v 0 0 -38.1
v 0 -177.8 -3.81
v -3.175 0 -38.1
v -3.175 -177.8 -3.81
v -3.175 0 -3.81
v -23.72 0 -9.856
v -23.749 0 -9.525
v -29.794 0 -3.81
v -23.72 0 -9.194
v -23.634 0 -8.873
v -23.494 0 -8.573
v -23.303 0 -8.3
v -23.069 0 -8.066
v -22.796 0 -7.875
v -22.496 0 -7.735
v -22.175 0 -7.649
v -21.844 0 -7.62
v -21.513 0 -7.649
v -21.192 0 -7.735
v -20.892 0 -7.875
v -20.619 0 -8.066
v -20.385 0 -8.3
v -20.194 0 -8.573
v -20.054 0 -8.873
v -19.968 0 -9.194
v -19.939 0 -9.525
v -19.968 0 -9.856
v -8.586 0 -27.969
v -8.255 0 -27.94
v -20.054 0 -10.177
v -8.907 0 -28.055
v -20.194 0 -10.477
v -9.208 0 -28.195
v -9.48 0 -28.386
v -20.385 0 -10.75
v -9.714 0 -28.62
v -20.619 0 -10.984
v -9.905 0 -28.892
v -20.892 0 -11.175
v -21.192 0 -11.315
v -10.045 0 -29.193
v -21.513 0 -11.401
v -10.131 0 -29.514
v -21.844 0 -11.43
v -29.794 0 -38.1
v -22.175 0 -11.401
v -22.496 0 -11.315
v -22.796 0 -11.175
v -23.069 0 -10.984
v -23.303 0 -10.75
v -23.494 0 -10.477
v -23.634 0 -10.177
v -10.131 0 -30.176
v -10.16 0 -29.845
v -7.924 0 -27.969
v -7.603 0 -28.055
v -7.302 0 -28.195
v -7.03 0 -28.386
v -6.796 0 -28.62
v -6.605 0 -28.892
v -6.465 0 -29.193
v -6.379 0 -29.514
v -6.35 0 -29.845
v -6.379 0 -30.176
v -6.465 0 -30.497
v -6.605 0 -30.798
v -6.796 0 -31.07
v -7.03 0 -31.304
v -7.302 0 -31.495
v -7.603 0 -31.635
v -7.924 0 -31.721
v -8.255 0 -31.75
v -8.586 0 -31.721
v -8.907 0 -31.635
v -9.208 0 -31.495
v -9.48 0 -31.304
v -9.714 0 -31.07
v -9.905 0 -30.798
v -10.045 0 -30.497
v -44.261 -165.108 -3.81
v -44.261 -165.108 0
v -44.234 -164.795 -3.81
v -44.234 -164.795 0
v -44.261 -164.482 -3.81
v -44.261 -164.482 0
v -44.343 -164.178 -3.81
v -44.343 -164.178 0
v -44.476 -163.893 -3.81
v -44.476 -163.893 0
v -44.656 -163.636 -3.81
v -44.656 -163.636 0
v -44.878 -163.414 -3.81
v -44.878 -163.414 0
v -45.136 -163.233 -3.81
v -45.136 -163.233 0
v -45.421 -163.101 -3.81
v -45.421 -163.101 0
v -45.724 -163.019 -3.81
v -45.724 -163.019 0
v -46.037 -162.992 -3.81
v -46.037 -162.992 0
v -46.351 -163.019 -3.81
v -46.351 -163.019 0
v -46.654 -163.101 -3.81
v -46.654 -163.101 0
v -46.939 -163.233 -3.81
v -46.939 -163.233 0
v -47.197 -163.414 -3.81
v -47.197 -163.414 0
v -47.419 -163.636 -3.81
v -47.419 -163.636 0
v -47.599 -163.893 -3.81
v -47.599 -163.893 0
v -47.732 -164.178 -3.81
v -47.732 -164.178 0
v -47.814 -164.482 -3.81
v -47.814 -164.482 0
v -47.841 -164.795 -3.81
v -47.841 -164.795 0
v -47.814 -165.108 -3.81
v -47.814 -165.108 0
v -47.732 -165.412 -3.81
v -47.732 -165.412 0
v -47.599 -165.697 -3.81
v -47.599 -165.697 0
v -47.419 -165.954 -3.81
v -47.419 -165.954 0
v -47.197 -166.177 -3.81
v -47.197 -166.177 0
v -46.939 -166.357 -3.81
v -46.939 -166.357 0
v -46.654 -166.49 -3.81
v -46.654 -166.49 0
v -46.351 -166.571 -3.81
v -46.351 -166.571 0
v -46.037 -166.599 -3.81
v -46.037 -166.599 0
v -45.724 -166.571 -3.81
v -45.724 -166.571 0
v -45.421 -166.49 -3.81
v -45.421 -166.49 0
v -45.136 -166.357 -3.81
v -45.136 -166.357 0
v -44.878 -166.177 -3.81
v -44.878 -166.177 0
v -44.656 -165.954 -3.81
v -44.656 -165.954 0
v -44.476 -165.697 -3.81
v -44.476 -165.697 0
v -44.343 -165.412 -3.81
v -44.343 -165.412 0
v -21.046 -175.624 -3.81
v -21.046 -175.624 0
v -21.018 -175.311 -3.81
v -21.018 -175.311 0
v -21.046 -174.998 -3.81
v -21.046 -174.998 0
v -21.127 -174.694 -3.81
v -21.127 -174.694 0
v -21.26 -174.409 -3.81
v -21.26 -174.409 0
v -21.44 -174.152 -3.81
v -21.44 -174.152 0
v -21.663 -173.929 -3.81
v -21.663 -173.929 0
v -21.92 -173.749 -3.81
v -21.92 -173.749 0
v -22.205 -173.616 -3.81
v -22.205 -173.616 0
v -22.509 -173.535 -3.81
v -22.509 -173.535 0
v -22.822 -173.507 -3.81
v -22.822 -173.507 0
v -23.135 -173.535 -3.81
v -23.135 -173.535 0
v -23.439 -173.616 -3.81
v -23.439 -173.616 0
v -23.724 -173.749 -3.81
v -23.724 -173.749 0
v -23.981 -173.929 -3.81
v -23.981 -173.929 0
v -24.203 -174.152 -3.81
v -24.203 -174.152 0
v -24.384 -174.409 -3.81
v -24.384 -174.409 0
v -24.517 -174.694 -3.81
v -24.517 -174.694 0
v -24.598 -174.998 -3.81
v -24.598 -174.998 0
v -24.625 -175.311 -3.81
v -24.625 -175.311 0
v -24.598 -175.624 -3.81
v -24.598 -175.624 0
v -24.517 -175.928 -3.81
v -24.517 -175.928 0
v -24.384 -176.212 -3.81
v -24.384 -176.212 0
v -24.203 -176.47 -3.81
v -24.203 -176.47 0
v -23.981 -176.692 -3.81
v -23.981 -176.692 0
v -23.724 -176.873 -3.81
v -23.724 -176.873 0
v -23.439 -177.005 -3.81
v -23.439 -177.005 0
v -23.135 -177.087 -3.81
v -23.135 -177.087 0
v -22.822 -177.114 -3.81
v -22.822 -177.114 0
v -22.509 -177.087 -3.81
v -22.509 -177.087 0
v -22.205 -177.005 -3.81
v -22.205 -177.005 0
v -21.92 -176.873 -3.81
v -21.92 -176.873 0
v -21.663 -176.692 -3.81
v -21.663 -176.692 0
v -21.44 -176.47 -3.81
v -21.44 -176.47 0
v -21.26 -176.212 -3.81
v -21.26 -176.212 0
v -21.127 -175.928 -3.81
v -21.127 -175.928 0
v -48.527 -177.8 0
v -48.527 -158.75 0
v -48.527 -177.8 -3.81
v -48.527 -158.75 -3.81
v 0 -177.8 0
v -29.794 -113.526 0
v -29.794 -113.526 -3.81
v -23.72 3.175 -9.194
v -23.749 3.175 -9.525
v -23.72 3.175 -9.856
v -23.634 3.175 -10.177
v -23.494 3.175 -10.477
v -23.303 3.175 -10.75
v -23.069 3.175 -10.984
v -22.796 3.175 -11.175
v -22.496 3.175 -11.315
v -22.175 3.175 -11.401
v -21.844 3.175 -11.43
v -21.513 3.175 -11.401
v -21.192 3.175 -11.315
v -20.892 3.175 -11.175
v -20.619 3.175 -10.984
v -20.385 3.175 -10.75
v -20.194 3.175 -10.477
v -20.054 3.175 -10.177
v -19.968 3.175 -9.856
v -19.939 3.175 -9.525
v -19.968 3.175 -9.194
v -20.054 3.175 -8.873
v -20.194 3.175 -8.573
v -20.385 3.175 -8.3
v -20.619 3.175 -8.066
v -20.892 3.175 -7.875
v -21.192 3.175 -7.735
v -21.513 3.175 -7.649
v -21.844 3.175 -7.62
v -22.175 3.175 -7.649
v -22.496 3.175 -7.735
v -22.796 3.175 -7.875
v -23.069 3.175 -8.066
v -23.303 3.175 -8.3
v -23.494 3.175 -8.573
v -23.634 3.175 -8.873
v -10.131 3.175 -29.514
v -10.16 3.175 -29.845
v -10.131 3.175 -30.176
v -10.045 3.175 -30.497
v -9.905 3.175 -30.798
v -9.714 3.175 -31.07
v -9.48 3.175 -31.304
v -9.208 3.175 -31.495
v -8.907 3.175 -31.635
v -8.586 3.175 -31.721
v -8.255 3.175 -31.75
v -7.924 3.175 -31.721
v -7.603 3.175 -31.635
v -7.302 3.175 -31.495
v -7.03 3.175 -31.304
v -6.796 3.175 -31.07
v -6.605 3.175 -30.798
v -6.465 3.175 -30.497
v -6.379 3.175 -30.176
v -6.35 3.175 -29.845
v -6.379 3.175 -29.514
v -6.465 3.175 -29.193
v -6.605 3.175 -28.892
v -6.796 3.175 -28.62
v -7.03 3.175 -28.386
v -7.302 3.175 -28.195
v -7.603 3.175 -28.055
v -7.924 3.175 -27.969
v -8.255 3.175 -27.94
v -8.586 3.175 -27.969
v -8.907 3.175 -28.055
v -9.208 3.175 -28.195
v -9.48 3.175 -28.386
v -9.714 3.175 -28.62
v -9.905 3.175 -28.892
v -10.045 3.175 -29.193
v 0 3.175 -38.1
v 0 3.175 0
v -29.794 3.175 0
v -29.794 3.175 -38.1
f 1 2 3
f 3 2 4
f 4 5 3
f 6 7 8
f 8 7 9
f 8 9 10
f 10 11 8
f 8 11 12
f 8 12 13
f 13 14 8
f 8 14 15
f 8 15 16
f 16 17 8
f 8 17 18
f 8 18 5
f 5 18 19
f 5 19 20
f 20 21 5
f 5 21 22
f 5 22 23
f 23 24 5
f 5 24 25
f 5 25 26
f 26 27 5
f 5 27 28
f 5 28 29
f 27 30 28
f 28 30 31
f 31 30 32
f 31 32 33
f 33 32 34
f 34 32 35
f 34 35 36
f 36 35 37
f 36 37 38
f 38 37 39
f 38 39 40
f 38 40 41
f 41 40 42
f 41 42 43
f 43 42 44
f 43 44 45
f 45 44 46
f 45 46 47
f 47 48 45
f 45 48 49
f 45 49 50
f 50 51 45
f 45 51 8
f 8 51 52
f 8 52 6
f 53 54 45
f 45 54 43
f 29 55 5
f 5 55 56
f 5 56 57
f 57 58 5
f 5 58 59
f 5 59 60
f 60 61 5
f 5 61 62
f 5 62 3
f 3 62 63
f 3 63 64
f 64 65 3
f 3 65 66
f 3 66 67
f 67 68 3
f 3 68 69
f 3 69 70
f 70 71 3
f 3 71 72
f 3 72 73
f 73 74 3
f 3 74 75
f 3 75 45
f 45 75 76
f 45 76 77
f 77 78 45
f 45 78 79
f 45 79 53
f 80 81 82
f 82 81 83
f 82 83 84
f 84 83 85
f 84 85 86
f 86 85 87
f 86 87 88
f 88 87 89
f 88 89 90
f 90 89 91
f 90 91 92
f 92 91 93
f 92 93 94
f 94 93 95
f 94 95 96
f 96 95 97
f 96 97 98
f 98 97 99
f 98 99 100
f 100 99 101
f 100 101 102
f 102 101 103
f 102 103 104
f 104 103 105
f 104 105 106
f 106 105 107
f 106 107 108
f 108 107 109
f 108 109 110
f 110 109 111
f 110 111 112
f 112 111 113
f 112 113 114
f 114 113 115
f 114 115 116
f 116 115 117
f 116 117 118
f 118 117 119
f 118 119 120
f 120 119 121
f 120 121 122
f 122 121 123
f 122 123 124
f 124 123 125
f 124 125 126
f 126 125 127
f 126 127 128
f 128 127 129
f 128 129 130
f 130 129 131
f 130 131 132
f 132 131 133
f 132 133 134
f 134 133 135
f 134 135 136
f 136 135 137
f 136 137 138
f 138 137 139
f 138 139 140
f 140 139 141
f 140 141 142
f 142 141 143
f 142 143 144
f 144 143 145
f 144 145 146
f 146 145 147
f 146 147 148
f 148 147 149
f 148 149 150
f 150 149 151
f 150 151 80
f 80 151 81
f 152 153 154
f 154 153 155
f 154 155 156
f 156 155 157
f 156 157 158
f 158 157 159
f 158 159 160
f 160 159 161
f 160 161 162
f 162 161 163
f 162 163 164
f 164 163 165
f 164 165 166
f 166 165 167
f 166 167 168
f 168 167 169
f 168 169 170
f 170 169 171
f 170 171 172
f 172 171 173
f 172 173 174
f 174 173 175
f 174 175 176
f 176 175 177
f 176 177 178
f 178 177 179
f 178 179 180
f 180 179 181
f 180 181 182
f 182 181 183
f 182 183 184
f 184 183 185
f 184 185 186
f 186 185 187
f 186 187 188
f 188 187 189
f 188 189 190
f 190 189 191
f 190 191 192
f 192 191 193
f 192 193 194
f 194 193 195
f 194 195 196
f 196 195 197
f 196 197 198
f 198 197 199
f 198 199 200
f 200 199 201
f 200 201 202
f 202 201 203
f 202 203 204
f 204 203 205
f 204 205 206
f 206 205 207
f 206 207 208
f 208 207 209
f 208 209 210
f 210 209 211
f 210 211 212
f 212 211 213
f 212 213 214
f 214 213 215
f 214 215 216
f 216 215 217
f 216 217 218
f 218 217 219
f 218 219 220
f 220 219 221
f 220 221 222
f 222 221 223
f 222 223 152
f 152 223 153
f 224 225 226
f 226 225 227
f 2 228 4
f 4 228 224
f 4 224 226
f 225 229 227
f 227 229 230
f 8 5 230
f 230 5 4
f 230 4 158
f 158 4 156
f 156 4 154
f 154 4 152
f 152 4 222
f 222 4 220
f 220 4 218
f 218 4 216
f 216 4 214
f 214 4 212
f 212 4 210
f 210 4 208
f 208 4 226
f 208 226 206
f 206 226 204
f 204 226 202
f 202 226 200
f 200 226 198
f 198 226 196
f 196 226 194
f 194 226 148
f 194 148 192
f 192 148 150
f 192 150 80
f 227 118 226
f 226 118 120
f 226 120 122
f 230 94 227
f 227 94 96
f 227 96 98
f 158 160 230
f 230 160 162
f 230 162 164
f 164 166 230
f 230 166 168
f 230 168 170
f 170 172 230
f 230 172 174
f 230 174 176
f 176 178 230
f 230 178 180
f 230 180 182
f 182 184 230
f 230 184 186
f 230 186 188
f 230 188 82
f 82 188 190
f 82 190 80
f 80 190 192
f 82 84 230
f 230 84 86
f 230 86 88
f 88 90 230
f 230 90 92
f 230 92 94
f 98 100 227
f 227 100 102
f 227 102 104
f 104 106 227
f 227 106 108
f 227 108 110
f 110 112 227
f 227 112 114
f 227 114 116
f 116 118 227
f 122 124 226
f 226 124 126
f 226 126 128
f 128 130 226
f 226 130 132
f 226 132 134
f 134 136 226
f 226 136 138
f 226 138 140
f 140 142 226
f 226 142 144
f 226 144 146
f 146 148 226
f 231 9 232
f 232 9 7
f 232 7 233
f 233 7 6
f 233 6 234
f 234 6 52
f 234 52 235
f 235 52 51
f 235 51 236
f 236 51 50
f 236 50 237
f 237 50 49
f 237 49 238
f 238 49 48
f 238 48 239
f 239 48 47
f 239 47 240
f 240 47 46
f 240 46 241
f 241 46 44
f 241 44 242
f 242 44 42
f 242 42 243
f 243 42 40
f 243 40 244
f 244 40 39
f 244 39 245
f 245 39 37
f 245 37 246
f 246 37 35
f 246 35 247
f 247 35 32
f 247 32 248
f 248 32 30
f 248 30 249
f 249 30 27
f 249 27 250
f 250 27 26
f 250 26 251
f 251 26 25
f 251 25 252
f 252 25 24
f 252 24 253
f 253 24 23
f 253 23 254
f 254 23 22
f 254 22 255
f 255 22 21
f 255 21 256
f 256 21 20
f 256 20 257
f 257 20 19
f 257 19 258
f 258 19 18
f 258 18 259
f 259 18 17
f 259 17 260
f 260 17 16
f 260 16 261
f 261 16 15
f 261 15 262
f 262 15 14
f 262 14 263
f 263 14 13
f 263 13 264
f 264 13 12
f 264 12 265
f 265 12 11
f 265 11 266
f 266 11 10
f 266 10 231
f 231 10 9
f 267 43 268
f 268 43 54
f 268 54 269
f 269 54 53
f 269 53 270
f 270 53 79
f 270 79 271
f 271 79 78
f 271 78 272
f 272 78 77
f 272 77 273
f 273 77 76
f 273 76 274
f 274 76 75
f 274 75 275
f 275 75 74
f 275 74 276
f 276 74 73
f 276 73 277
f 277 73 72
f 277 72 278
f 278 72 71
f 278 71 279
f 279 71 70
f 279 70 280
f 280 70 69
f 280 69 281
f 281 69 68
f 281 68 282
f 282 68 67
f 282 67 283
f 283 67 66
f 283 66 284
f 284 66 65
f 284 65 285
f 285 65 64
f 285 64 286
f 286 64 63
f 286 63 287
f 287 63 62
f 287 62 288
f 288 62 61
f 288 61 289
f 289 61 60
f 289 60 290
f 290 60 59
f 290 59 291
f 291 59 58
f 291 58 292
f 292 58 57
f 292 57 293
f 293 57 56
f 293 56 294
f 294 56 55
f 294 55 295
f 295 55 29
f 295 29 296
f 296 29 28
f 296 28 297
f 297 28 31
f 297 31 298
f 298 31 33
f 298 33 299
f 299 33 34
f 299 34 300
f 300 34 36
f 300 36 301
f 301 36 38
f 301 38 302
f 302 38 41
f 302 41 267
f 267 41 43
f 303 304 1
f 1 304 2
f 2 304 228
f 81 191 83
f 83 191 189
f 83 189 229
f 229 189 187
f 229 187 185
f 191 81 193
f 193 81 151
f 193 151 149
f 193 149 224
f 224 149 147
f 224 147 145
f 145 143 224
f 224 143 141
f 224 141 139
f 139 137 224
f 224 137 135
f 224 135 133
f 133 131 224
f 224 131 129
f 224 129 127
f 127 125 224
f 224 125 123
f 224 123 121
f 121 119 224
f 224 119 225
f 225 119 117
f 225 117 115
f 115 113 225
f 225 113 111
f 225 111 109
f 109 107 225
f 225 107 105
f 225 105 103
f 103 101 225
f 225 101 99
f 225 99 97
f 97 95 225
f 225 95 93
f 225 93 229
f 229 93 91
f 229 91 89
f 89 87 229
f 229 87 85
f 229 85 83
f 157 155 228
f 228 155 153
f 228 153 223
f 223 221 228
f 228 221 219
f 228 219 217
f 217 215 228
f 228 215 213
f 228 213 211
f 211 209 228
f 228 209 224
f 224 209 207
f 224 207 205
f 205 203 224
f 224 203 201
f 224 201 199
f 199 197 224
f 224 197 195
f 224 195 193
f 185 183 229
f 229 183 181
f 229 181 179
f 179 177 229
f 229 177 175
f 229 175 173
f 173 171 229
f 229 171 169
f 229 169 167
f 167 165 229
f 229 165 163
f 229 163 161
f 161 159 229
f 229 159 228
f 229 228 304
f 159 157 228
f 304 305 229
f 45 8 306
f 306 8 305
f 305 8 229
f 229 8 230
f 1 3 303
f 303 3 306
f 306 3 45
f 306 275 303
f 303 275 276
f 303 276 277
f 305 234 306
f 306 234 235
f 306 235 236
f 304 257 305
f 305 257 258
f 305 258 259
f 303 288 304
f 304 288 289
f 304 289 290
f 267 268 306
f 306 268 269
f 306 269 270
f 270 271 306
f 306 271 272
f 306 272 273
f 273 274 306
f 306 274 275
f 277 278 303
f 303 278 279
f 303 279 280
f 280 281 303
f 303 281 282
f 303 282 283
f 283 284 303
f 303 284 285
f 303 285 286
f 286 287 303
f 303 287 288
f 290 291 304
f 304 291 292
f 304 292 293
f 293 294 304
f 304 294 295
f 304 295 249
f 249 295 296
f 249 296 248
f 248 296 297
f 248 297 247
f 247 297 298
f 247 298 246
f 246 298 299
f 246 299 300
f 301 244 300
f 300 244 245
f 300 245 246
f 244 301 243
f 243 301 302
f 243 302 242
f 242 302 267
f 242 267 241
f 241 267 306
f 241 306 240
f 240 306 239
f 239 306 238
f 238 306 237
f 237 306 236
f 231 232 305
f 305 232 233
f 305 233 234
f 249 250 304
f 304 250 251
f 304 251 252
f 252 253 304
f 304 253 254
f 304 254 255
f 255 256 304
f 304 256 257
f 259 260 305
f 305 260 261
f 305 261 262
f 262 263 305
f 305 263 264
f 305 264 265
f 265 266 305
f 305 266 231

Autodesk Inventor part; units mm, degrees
ref_plane "YZ Plane" through (0, 0, 0) normal (1, 0, 0) x (0, 1, 0)
ref_plane "XZ Plane" through (0, 0, 0) normal (0, 1, 0) x (-1, 0, 0)
ref_plane "XY Plane" through (0, 0, 0) normal (0, 0, 1) x (1, 0, 0)
sketch "Sketch1" plane through (0, 0, 0) normal (0, 1, 0) x (-1, 0, 0)
  line L0 (0, 0) -> (29.7942, 0)
  line L1 (29.7942, 0) -> (29.7942, -38.1)
  line L2 (29.7942, -38.1) -> (0, -38.1)
  line L3 (0, -38.1) -> (0, 0)
  circle A0 centre (21.844, -9.525) radius 1.905
  circle A1 centre (8.255, -29.845) radius 1.905
  dimension "d0" = 29.7942
  dimension "d1" = 38.1
  dimension "d2" = 3.81
  dimension "d3" = 3.81
  dimension "d4" = 7.9502
  dimension "d5" = 9.525
  dimension "d6" = 8.255
  dimension "d7" = 8.255
extrude "Extrusion1" add sketch "Sketch1" along normal blind 3.175
sketch "Sketch2" plane through (-29.7942, 0, 0) normal (0, 0, 1) x (1, 0, 0)
  line L0 (29.7942, 0) -> (0, 0) projected
  line L1 (0, 0) -> (29.7942, 0)
  line L2 (29.7942, 0) -> (29.7942, -177.8)
  line L3 (29.7942, -177.8) -> (0, -177.8)
  line L4 (0, -113.5257) -> (0, 0)
  circle A0 centre (6.9723, -175.3108) radius 1.8034
  circle A1 centre (-16.2433, -164.7952) radius 1.8034
  line L5 (0, -177.8) -> (-18.7325, -177.8)
  line L6 (-18.7325, -177.8) -> (-18.7325, -158.75)
  line L7 (-18.7325, -158.75) -> (0, -113.5257)
  dimension "d11" = 177.8
  dimension "d12" = 3.6068
  dimension "d13" = 3.6068
  dimension "d15" = 13.0048
  dimension "d16" = 2.4892
  dimension "d22" = 157.5
  dimension "d24" = 19.05
  dimension "d25" = 48.5267
  dimension "d26" = 29.7942
  dimension "d27" = 2.4892
  dimension "d28" = 25.7048
extrude "Extrusion2" add sketch "Sketch2" against normal blind 3.81
sketch "Sketch3" plane through (0, 3.175, 0) normal (1, 0, 0) x (0, 0, -1)
  line L0 (3.81, -3.175) -> (3.81, -180.975) projected
  line L1 (38.1, -3.175) -> (3.81, -180.975)
  line L2 (38.1, -3.175) -> (3.81, -3.175)
  point P0 (0, -3.175)
extrude "Extrusion3" add sketch "Sketch3" against normal blind 3.175
properties part number "LimitSwitchBottomV3"
